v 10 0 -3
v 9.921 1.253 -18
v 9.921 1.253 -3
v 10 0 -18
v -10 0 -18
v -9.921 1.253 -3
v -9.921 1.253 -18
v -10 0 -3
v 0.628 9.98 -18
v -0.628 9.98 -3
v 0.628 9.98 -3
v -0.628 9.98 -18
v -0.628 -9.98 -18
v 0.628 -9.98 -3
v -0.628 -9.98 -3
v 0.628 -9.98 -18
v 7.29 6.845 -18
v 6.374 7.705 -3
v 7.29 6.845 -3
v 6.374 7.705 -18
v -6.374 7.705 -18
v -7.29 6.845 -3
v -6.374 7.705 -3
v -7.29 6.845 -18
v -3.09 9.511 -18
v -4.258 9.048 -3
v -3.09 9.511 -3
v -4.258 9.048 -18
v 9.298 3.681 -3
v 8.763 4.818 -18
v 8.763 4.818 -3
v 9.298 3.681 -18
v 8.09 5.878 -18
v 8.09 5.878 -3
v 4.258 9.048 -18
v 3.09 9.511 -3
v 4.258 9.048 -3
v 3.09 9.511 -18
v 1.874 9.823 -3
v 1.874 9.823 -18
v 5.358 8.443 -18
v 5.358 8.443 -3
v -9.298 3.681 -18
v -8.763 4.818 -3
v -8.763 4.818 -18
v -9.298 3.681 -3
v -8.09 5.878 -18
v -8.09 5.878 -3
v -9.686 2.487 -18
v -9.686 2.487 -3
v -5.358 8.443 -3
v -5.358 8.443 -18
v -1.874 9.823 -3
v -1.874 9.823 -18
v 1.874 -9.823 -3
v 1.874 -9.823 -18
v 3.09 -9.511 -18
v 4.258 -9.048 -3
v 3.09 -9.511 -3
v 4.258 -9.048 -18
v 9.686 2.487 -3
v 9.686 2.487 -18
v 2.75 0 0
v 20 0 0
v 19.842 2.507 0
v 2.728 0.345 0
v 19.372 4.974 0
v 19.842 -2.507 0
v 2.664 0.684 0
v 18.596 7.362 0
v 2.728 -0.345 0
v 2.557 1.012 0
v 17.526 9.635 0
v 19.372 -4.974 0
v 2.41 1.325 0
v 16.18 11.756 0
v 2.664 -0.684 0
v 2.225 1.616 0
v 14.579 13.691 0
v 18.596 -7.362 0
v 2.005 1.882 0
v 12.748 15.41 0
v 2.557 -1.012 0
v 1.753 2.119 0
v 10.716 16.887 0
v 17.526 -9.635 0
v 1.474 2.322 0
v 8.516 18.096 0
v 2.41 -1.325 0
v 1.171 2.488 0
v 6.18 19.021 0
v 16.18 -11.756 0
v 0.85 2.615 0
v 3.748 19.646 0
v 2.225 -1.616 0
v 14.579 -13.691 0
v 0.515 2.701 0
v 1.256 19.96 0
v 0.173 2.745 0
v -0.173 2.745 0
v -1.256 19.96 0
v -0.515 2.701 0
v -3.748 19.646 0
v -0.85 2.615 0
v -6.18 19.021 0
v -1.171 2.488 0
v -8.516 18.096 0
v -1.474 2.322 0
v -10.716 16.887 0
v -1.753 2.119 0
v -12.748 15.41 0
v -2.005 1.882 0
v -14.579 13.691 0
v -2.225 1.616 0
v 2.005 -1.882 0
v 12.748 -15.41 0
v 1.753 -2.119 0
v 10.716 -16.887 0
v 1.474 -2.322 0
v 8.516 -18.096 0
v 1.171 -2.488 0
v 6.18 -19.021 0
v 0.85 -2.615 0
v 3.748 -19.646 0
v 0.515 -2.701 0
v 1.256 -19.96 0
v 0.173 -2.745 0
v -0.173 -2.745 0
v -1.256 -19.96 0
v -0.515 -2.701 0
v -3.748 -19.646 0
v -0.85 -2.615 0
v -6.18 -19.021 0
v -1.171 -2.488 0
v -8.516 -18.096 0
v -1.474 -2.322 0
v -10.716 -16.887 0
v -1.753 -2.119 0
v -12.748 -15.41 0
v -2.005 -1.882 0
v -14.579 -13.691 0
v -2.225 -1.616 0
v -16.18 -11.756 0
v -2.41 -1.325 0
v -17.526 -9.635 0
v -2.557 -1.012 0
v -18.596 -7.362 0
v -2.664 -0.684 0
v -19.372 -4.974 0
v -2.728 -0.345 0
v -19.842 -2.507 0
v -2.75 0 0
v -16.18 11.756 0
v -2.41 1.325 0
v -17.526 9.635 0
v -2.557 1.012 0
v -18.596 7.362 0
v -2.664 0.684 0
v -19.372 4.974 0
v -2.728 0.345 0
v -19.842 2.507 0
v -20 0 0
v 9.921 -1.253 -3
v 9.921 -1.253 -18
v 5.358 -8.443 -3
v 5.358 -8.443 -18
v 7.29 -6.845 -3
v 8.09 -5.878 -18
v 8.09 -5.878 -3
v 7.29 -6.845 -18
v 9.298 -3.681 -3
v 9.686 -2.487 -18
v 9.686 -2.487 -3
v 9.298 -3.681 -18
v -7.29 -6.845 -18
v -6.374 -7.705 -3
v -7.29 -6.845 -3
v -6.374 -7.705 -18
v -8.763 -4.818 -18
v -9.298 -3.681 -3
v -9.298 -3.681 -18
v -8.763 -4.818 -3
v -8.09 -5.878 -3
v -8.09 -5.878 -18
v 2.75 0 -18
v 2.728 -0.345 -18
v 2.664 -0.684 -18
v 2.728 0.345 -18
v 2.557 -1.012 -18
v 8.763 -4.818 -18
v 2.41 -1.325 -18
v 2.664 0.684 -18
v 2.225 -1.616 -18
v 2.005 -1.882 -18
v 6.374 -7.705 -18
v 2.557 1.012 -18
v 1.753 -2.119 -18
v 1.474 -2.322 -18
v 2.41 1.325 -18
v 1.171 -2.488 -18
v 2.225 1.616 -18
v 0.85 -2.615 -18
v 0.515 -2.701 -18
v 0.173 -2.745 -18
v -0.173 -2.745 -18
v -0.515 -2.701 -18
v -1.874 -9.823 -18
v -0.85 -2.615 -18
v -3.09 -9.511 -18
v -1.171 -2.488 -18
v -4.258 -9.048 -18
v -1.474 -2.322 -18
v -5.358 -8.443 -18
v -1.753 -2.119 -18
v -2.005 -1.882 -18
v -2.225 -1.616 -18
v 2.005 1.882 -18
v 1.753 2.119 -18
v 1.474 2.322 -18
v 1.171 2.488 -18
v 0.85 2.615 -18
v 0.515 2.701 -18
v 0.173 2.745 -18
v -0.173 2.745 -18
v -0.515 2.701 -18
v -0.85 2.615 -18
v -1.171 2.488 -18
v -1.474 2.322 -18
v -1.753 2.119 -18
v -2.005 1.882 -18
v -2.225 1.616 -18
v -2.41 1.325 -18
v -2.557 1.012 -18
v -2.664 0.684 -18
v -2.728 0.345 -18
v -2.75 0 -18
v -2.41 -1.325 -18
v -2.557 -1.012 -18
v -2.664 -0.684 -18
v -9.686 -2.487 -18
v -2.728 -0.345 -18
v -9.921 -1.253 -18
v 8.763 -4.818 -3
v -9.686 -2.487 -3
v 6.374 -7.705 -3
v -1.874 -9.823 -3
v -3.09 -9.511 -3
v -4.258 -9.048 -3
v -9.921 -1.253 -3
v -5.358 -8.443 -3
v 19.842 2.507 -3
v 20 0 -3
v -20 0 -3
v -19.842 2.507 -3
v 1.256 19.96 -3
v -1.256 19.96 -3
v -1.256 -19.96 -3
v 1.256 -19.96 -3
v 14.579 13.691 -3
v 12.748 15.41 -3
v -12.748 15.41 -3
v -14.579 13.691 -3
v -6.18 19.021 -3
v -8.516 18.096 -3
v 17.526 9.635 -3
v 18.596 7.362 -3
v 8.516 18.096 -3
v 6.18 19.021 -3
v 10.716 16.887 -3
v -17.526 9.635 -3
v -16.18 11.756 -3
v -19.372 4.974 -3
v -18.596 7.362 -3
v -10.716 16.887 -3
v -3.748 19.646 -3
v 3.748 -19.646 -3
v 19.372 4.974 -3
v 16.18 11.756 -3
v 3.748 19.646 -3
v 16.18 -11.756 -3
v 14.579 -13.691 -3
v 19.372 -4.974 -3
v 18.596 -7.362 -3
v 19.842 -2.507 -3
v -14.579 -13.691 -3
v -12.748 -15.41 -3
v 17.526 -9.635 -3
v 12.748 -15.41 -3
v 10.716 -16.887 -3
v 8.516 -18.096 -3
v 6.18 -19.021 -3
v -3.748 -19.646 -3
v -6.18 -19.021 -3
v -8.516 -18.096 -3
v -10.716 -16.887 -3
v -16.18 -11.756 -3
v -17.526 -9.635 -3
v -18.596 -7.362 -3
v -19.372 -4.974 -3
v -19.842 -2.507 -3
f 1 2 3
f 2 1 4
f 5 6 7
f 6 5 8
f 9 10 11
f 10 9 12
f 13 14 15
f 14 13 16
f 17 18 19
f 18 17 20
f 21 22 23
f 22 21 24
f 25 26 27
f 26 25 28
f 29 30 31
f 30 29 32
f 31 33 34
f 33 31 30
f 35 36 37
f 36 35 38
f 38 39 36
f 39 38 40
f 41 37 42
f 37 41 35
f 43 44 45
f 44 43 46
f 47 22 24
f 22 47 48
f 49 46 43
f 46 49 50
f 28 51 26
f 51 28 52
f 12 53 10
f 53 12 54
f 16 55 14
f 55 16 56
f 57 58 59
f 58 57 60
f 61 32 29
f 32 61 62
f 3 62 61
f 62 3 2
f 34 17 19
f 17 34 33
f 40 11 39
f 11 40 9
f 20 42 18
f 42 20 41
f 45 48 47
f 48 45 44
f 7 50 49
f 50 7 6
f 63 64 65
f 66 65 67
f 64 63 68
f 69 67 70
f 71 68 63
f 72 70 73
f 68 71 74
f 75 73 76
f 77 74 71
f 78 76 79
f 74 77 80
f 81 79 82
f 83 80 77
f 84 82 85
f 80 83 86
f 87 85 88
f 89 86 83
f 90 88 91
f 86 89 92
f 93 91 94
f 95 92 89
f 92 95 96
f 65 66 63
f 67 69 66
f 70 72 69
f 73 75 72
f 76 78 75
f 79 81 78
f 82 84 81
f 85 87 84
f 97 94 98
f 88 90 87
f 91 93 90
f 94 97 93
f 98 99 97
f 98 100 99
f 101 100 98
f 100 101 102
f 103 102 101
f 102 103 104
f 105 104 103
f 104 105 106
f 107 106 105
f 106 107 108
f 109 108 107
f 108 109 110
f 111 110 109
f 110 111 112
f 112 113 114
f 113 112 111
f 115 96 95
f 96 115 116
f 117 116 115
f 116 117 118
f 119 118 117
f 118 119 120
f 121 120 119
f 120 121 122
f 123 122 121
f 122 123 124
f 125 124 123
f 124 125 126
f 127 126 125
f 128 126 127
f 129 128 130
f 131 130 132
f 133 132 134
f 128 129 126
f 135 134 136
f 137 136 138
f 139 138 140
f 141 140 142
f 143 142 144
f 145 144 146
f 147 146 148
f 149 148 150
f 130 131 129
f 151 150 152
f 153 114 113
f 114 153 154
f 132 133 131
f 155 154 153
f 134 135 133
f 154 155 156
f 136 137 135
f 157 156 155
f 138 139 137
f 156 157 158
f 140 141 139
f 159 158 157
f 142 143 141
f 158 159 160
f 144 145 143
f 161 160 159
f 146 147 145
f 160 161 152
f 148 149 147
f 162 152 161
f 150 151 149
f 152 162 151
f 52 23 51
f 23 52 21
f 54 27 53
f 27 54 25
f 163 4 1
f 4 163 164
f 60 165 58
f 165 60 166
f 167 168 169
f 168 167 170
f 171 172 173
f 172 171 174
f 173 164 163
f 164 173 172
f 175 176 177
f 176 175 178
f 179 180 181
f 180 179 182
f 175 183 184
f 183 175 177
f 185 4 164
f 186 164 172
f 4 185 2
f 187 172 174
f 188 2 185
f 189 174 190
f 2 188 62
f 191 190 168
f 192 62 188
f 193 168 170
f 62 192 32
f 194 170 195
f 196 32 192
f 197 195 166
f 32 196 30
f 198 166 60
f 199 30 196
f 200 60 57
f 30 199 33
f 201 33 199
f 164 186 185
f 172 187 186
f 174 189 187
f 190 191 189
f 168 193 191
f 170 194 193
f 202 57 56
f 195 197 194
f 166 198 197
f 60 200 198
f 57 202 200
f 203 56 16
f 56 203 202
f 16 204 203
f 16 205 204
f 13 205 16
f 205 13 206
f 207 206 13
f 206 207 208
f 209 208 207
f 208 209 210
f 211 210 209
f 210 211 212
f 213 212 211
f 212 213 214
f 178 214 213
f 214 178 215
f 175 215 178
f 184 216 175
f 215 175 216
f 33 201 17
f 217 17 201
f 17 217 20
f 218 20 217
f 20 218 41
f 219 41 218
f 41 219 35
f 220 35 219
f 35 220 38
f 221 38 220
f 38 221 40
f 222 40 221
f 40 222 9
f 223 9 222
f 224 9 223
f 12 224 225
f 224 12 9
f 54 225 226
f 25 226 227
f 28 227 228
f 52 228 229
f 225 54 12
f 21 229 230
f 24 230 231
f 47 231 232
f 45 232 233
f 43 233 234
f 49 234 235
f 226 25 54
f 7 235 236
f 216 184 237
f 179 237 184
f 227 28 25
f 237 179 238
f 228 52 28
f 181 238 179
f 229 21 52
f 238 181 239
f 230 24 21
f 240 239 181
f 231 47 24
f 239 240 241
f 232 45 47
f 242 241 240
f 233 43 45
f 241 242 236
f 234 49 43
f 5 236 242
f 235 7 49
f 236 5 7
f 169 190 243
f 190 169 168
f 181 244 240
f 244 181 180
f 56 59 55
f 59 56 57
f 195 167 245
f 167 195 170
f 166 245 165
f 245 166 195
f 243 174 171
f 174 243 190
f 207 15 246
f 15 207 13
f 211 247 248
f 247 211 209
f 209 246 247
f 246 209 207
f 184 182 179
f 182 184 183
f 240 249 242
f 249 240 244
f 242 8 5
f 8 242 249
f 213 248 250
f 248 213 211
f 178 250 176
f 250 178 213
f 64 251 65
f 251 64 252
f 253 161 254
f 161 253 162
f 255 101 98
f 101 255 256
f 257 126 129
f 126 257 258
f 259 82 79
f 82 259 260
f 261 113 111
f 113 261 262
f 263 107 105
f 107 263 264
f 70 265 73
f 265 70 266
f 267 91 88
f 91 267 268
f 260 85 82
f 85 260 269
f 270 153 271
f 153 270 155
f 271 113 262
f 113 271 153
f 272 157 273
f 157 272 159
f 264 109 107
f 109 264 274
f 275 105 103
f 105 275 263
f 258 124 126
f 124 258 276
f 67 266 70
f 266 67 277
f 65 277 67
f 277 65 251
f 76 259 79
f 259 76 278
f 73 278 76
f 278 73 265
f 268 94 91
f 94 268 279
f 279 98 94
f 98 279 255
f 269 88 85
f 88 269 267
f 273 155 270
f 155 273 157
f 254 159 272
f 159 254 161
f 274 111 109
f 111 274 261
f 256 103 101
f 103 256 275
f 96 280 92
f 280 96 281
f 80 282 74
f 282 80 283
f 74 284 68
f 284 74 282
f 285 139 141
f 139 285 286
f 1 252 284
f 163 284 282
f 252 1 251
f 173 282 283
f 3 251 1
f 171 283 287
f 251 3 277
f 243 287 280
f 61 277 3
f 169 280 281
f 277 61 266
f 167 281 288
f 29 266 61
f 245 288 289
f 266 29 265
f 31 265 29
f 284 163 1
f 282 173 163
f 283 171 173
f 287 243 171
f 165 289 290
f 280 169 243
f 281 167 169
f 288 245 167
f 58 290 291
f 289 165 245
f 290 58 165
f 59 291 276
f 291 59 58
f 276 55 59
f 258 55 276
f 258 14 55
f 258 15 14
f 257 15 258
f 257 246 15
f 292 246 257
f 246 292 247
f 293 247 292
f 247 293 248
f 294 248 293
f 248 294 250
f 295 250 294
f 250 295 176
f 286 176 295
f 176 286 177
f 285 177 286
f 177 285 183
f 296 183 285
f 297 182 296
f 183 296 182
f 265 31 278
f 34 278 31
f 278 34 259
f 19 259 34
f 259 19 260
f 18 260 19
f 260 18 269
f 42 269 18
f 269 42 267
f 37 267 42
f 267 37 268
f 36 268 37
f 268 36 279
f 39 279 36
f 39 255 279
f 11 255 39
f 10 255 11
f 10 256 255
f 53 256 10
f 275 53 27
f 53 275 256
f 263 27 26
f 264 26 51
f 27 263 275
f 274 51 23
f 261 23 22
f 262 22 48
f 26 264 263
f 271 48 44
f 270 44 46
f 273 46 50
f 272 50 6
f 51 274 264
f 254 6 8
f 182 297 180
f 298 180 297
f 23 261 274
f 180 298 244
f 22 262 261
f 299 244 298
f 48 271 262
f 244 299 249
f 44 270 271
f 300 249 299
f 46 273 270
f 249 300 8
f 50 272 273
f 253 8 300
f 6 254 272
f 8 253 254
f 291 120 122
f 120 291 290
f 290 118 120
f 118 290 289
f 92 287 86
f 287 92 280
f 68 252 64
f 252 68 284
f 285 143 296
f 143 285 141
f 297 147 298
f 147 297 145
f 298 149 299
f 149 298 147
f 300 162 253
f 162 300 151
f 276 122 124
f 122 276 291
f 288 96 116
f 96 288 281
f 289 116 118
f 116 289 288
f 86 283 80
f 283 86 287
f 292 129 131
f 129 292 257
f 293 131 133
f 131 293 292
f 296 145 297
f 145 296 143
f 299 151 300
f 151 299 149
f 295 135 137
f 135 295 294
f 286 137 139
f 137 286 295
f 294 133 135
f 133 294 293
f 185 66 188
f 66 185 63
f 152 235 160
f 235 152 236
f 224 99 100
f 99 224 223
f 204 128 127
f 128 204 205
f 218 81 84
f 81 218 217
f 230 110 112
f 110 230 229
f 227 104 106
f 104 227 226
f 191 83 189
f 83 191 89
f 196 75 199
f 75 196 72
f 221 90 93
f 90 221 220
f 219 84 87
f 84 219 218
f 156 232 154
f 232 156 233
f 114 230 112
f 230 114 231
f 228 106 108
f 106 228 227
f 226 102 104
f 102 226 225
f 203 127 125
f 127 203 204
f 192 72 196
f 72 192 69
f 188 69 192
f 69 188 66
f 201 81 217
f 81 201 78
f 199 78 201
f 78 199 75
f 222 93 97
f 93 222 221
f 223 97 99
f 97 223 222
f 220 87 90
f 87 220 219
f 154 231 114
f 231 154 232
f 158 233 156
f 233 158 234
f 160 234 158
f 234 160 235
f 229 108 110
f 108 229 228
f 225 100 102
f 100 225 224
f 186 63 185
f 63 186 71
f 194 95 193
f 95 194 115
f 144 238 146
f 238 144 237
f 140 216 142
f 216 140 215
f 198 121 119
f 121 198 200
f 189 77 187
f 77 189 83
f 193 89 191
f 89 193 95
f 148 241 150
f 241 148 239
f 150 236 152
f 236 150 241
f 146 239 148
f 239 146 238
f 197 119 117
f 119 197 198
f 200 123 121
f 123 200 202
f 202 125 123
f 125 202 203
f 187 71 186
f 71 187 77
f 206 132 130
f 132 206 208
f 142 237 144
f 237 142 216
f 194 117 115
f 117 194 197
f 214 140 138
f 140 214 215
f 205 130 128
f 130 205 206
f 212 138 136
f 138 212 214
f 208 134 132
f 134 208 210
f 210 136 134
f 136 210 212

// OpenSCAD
$fn = 50;


difference() {
	union() {
		translate(v = [0, 0, -18.0000000000]) {
			cylinder(h = 18, r = 10.0000000000);
		}
		translate(v = [0, 0, -3.0000000000]) {
			cylinder(h = 3, r = 20.0000000000);
		}
	}
	union() {
		#translate(v = [0, 0, -18]) {
			cylinder(h = 18, r = 2.7500000000);
		}
	}
}
